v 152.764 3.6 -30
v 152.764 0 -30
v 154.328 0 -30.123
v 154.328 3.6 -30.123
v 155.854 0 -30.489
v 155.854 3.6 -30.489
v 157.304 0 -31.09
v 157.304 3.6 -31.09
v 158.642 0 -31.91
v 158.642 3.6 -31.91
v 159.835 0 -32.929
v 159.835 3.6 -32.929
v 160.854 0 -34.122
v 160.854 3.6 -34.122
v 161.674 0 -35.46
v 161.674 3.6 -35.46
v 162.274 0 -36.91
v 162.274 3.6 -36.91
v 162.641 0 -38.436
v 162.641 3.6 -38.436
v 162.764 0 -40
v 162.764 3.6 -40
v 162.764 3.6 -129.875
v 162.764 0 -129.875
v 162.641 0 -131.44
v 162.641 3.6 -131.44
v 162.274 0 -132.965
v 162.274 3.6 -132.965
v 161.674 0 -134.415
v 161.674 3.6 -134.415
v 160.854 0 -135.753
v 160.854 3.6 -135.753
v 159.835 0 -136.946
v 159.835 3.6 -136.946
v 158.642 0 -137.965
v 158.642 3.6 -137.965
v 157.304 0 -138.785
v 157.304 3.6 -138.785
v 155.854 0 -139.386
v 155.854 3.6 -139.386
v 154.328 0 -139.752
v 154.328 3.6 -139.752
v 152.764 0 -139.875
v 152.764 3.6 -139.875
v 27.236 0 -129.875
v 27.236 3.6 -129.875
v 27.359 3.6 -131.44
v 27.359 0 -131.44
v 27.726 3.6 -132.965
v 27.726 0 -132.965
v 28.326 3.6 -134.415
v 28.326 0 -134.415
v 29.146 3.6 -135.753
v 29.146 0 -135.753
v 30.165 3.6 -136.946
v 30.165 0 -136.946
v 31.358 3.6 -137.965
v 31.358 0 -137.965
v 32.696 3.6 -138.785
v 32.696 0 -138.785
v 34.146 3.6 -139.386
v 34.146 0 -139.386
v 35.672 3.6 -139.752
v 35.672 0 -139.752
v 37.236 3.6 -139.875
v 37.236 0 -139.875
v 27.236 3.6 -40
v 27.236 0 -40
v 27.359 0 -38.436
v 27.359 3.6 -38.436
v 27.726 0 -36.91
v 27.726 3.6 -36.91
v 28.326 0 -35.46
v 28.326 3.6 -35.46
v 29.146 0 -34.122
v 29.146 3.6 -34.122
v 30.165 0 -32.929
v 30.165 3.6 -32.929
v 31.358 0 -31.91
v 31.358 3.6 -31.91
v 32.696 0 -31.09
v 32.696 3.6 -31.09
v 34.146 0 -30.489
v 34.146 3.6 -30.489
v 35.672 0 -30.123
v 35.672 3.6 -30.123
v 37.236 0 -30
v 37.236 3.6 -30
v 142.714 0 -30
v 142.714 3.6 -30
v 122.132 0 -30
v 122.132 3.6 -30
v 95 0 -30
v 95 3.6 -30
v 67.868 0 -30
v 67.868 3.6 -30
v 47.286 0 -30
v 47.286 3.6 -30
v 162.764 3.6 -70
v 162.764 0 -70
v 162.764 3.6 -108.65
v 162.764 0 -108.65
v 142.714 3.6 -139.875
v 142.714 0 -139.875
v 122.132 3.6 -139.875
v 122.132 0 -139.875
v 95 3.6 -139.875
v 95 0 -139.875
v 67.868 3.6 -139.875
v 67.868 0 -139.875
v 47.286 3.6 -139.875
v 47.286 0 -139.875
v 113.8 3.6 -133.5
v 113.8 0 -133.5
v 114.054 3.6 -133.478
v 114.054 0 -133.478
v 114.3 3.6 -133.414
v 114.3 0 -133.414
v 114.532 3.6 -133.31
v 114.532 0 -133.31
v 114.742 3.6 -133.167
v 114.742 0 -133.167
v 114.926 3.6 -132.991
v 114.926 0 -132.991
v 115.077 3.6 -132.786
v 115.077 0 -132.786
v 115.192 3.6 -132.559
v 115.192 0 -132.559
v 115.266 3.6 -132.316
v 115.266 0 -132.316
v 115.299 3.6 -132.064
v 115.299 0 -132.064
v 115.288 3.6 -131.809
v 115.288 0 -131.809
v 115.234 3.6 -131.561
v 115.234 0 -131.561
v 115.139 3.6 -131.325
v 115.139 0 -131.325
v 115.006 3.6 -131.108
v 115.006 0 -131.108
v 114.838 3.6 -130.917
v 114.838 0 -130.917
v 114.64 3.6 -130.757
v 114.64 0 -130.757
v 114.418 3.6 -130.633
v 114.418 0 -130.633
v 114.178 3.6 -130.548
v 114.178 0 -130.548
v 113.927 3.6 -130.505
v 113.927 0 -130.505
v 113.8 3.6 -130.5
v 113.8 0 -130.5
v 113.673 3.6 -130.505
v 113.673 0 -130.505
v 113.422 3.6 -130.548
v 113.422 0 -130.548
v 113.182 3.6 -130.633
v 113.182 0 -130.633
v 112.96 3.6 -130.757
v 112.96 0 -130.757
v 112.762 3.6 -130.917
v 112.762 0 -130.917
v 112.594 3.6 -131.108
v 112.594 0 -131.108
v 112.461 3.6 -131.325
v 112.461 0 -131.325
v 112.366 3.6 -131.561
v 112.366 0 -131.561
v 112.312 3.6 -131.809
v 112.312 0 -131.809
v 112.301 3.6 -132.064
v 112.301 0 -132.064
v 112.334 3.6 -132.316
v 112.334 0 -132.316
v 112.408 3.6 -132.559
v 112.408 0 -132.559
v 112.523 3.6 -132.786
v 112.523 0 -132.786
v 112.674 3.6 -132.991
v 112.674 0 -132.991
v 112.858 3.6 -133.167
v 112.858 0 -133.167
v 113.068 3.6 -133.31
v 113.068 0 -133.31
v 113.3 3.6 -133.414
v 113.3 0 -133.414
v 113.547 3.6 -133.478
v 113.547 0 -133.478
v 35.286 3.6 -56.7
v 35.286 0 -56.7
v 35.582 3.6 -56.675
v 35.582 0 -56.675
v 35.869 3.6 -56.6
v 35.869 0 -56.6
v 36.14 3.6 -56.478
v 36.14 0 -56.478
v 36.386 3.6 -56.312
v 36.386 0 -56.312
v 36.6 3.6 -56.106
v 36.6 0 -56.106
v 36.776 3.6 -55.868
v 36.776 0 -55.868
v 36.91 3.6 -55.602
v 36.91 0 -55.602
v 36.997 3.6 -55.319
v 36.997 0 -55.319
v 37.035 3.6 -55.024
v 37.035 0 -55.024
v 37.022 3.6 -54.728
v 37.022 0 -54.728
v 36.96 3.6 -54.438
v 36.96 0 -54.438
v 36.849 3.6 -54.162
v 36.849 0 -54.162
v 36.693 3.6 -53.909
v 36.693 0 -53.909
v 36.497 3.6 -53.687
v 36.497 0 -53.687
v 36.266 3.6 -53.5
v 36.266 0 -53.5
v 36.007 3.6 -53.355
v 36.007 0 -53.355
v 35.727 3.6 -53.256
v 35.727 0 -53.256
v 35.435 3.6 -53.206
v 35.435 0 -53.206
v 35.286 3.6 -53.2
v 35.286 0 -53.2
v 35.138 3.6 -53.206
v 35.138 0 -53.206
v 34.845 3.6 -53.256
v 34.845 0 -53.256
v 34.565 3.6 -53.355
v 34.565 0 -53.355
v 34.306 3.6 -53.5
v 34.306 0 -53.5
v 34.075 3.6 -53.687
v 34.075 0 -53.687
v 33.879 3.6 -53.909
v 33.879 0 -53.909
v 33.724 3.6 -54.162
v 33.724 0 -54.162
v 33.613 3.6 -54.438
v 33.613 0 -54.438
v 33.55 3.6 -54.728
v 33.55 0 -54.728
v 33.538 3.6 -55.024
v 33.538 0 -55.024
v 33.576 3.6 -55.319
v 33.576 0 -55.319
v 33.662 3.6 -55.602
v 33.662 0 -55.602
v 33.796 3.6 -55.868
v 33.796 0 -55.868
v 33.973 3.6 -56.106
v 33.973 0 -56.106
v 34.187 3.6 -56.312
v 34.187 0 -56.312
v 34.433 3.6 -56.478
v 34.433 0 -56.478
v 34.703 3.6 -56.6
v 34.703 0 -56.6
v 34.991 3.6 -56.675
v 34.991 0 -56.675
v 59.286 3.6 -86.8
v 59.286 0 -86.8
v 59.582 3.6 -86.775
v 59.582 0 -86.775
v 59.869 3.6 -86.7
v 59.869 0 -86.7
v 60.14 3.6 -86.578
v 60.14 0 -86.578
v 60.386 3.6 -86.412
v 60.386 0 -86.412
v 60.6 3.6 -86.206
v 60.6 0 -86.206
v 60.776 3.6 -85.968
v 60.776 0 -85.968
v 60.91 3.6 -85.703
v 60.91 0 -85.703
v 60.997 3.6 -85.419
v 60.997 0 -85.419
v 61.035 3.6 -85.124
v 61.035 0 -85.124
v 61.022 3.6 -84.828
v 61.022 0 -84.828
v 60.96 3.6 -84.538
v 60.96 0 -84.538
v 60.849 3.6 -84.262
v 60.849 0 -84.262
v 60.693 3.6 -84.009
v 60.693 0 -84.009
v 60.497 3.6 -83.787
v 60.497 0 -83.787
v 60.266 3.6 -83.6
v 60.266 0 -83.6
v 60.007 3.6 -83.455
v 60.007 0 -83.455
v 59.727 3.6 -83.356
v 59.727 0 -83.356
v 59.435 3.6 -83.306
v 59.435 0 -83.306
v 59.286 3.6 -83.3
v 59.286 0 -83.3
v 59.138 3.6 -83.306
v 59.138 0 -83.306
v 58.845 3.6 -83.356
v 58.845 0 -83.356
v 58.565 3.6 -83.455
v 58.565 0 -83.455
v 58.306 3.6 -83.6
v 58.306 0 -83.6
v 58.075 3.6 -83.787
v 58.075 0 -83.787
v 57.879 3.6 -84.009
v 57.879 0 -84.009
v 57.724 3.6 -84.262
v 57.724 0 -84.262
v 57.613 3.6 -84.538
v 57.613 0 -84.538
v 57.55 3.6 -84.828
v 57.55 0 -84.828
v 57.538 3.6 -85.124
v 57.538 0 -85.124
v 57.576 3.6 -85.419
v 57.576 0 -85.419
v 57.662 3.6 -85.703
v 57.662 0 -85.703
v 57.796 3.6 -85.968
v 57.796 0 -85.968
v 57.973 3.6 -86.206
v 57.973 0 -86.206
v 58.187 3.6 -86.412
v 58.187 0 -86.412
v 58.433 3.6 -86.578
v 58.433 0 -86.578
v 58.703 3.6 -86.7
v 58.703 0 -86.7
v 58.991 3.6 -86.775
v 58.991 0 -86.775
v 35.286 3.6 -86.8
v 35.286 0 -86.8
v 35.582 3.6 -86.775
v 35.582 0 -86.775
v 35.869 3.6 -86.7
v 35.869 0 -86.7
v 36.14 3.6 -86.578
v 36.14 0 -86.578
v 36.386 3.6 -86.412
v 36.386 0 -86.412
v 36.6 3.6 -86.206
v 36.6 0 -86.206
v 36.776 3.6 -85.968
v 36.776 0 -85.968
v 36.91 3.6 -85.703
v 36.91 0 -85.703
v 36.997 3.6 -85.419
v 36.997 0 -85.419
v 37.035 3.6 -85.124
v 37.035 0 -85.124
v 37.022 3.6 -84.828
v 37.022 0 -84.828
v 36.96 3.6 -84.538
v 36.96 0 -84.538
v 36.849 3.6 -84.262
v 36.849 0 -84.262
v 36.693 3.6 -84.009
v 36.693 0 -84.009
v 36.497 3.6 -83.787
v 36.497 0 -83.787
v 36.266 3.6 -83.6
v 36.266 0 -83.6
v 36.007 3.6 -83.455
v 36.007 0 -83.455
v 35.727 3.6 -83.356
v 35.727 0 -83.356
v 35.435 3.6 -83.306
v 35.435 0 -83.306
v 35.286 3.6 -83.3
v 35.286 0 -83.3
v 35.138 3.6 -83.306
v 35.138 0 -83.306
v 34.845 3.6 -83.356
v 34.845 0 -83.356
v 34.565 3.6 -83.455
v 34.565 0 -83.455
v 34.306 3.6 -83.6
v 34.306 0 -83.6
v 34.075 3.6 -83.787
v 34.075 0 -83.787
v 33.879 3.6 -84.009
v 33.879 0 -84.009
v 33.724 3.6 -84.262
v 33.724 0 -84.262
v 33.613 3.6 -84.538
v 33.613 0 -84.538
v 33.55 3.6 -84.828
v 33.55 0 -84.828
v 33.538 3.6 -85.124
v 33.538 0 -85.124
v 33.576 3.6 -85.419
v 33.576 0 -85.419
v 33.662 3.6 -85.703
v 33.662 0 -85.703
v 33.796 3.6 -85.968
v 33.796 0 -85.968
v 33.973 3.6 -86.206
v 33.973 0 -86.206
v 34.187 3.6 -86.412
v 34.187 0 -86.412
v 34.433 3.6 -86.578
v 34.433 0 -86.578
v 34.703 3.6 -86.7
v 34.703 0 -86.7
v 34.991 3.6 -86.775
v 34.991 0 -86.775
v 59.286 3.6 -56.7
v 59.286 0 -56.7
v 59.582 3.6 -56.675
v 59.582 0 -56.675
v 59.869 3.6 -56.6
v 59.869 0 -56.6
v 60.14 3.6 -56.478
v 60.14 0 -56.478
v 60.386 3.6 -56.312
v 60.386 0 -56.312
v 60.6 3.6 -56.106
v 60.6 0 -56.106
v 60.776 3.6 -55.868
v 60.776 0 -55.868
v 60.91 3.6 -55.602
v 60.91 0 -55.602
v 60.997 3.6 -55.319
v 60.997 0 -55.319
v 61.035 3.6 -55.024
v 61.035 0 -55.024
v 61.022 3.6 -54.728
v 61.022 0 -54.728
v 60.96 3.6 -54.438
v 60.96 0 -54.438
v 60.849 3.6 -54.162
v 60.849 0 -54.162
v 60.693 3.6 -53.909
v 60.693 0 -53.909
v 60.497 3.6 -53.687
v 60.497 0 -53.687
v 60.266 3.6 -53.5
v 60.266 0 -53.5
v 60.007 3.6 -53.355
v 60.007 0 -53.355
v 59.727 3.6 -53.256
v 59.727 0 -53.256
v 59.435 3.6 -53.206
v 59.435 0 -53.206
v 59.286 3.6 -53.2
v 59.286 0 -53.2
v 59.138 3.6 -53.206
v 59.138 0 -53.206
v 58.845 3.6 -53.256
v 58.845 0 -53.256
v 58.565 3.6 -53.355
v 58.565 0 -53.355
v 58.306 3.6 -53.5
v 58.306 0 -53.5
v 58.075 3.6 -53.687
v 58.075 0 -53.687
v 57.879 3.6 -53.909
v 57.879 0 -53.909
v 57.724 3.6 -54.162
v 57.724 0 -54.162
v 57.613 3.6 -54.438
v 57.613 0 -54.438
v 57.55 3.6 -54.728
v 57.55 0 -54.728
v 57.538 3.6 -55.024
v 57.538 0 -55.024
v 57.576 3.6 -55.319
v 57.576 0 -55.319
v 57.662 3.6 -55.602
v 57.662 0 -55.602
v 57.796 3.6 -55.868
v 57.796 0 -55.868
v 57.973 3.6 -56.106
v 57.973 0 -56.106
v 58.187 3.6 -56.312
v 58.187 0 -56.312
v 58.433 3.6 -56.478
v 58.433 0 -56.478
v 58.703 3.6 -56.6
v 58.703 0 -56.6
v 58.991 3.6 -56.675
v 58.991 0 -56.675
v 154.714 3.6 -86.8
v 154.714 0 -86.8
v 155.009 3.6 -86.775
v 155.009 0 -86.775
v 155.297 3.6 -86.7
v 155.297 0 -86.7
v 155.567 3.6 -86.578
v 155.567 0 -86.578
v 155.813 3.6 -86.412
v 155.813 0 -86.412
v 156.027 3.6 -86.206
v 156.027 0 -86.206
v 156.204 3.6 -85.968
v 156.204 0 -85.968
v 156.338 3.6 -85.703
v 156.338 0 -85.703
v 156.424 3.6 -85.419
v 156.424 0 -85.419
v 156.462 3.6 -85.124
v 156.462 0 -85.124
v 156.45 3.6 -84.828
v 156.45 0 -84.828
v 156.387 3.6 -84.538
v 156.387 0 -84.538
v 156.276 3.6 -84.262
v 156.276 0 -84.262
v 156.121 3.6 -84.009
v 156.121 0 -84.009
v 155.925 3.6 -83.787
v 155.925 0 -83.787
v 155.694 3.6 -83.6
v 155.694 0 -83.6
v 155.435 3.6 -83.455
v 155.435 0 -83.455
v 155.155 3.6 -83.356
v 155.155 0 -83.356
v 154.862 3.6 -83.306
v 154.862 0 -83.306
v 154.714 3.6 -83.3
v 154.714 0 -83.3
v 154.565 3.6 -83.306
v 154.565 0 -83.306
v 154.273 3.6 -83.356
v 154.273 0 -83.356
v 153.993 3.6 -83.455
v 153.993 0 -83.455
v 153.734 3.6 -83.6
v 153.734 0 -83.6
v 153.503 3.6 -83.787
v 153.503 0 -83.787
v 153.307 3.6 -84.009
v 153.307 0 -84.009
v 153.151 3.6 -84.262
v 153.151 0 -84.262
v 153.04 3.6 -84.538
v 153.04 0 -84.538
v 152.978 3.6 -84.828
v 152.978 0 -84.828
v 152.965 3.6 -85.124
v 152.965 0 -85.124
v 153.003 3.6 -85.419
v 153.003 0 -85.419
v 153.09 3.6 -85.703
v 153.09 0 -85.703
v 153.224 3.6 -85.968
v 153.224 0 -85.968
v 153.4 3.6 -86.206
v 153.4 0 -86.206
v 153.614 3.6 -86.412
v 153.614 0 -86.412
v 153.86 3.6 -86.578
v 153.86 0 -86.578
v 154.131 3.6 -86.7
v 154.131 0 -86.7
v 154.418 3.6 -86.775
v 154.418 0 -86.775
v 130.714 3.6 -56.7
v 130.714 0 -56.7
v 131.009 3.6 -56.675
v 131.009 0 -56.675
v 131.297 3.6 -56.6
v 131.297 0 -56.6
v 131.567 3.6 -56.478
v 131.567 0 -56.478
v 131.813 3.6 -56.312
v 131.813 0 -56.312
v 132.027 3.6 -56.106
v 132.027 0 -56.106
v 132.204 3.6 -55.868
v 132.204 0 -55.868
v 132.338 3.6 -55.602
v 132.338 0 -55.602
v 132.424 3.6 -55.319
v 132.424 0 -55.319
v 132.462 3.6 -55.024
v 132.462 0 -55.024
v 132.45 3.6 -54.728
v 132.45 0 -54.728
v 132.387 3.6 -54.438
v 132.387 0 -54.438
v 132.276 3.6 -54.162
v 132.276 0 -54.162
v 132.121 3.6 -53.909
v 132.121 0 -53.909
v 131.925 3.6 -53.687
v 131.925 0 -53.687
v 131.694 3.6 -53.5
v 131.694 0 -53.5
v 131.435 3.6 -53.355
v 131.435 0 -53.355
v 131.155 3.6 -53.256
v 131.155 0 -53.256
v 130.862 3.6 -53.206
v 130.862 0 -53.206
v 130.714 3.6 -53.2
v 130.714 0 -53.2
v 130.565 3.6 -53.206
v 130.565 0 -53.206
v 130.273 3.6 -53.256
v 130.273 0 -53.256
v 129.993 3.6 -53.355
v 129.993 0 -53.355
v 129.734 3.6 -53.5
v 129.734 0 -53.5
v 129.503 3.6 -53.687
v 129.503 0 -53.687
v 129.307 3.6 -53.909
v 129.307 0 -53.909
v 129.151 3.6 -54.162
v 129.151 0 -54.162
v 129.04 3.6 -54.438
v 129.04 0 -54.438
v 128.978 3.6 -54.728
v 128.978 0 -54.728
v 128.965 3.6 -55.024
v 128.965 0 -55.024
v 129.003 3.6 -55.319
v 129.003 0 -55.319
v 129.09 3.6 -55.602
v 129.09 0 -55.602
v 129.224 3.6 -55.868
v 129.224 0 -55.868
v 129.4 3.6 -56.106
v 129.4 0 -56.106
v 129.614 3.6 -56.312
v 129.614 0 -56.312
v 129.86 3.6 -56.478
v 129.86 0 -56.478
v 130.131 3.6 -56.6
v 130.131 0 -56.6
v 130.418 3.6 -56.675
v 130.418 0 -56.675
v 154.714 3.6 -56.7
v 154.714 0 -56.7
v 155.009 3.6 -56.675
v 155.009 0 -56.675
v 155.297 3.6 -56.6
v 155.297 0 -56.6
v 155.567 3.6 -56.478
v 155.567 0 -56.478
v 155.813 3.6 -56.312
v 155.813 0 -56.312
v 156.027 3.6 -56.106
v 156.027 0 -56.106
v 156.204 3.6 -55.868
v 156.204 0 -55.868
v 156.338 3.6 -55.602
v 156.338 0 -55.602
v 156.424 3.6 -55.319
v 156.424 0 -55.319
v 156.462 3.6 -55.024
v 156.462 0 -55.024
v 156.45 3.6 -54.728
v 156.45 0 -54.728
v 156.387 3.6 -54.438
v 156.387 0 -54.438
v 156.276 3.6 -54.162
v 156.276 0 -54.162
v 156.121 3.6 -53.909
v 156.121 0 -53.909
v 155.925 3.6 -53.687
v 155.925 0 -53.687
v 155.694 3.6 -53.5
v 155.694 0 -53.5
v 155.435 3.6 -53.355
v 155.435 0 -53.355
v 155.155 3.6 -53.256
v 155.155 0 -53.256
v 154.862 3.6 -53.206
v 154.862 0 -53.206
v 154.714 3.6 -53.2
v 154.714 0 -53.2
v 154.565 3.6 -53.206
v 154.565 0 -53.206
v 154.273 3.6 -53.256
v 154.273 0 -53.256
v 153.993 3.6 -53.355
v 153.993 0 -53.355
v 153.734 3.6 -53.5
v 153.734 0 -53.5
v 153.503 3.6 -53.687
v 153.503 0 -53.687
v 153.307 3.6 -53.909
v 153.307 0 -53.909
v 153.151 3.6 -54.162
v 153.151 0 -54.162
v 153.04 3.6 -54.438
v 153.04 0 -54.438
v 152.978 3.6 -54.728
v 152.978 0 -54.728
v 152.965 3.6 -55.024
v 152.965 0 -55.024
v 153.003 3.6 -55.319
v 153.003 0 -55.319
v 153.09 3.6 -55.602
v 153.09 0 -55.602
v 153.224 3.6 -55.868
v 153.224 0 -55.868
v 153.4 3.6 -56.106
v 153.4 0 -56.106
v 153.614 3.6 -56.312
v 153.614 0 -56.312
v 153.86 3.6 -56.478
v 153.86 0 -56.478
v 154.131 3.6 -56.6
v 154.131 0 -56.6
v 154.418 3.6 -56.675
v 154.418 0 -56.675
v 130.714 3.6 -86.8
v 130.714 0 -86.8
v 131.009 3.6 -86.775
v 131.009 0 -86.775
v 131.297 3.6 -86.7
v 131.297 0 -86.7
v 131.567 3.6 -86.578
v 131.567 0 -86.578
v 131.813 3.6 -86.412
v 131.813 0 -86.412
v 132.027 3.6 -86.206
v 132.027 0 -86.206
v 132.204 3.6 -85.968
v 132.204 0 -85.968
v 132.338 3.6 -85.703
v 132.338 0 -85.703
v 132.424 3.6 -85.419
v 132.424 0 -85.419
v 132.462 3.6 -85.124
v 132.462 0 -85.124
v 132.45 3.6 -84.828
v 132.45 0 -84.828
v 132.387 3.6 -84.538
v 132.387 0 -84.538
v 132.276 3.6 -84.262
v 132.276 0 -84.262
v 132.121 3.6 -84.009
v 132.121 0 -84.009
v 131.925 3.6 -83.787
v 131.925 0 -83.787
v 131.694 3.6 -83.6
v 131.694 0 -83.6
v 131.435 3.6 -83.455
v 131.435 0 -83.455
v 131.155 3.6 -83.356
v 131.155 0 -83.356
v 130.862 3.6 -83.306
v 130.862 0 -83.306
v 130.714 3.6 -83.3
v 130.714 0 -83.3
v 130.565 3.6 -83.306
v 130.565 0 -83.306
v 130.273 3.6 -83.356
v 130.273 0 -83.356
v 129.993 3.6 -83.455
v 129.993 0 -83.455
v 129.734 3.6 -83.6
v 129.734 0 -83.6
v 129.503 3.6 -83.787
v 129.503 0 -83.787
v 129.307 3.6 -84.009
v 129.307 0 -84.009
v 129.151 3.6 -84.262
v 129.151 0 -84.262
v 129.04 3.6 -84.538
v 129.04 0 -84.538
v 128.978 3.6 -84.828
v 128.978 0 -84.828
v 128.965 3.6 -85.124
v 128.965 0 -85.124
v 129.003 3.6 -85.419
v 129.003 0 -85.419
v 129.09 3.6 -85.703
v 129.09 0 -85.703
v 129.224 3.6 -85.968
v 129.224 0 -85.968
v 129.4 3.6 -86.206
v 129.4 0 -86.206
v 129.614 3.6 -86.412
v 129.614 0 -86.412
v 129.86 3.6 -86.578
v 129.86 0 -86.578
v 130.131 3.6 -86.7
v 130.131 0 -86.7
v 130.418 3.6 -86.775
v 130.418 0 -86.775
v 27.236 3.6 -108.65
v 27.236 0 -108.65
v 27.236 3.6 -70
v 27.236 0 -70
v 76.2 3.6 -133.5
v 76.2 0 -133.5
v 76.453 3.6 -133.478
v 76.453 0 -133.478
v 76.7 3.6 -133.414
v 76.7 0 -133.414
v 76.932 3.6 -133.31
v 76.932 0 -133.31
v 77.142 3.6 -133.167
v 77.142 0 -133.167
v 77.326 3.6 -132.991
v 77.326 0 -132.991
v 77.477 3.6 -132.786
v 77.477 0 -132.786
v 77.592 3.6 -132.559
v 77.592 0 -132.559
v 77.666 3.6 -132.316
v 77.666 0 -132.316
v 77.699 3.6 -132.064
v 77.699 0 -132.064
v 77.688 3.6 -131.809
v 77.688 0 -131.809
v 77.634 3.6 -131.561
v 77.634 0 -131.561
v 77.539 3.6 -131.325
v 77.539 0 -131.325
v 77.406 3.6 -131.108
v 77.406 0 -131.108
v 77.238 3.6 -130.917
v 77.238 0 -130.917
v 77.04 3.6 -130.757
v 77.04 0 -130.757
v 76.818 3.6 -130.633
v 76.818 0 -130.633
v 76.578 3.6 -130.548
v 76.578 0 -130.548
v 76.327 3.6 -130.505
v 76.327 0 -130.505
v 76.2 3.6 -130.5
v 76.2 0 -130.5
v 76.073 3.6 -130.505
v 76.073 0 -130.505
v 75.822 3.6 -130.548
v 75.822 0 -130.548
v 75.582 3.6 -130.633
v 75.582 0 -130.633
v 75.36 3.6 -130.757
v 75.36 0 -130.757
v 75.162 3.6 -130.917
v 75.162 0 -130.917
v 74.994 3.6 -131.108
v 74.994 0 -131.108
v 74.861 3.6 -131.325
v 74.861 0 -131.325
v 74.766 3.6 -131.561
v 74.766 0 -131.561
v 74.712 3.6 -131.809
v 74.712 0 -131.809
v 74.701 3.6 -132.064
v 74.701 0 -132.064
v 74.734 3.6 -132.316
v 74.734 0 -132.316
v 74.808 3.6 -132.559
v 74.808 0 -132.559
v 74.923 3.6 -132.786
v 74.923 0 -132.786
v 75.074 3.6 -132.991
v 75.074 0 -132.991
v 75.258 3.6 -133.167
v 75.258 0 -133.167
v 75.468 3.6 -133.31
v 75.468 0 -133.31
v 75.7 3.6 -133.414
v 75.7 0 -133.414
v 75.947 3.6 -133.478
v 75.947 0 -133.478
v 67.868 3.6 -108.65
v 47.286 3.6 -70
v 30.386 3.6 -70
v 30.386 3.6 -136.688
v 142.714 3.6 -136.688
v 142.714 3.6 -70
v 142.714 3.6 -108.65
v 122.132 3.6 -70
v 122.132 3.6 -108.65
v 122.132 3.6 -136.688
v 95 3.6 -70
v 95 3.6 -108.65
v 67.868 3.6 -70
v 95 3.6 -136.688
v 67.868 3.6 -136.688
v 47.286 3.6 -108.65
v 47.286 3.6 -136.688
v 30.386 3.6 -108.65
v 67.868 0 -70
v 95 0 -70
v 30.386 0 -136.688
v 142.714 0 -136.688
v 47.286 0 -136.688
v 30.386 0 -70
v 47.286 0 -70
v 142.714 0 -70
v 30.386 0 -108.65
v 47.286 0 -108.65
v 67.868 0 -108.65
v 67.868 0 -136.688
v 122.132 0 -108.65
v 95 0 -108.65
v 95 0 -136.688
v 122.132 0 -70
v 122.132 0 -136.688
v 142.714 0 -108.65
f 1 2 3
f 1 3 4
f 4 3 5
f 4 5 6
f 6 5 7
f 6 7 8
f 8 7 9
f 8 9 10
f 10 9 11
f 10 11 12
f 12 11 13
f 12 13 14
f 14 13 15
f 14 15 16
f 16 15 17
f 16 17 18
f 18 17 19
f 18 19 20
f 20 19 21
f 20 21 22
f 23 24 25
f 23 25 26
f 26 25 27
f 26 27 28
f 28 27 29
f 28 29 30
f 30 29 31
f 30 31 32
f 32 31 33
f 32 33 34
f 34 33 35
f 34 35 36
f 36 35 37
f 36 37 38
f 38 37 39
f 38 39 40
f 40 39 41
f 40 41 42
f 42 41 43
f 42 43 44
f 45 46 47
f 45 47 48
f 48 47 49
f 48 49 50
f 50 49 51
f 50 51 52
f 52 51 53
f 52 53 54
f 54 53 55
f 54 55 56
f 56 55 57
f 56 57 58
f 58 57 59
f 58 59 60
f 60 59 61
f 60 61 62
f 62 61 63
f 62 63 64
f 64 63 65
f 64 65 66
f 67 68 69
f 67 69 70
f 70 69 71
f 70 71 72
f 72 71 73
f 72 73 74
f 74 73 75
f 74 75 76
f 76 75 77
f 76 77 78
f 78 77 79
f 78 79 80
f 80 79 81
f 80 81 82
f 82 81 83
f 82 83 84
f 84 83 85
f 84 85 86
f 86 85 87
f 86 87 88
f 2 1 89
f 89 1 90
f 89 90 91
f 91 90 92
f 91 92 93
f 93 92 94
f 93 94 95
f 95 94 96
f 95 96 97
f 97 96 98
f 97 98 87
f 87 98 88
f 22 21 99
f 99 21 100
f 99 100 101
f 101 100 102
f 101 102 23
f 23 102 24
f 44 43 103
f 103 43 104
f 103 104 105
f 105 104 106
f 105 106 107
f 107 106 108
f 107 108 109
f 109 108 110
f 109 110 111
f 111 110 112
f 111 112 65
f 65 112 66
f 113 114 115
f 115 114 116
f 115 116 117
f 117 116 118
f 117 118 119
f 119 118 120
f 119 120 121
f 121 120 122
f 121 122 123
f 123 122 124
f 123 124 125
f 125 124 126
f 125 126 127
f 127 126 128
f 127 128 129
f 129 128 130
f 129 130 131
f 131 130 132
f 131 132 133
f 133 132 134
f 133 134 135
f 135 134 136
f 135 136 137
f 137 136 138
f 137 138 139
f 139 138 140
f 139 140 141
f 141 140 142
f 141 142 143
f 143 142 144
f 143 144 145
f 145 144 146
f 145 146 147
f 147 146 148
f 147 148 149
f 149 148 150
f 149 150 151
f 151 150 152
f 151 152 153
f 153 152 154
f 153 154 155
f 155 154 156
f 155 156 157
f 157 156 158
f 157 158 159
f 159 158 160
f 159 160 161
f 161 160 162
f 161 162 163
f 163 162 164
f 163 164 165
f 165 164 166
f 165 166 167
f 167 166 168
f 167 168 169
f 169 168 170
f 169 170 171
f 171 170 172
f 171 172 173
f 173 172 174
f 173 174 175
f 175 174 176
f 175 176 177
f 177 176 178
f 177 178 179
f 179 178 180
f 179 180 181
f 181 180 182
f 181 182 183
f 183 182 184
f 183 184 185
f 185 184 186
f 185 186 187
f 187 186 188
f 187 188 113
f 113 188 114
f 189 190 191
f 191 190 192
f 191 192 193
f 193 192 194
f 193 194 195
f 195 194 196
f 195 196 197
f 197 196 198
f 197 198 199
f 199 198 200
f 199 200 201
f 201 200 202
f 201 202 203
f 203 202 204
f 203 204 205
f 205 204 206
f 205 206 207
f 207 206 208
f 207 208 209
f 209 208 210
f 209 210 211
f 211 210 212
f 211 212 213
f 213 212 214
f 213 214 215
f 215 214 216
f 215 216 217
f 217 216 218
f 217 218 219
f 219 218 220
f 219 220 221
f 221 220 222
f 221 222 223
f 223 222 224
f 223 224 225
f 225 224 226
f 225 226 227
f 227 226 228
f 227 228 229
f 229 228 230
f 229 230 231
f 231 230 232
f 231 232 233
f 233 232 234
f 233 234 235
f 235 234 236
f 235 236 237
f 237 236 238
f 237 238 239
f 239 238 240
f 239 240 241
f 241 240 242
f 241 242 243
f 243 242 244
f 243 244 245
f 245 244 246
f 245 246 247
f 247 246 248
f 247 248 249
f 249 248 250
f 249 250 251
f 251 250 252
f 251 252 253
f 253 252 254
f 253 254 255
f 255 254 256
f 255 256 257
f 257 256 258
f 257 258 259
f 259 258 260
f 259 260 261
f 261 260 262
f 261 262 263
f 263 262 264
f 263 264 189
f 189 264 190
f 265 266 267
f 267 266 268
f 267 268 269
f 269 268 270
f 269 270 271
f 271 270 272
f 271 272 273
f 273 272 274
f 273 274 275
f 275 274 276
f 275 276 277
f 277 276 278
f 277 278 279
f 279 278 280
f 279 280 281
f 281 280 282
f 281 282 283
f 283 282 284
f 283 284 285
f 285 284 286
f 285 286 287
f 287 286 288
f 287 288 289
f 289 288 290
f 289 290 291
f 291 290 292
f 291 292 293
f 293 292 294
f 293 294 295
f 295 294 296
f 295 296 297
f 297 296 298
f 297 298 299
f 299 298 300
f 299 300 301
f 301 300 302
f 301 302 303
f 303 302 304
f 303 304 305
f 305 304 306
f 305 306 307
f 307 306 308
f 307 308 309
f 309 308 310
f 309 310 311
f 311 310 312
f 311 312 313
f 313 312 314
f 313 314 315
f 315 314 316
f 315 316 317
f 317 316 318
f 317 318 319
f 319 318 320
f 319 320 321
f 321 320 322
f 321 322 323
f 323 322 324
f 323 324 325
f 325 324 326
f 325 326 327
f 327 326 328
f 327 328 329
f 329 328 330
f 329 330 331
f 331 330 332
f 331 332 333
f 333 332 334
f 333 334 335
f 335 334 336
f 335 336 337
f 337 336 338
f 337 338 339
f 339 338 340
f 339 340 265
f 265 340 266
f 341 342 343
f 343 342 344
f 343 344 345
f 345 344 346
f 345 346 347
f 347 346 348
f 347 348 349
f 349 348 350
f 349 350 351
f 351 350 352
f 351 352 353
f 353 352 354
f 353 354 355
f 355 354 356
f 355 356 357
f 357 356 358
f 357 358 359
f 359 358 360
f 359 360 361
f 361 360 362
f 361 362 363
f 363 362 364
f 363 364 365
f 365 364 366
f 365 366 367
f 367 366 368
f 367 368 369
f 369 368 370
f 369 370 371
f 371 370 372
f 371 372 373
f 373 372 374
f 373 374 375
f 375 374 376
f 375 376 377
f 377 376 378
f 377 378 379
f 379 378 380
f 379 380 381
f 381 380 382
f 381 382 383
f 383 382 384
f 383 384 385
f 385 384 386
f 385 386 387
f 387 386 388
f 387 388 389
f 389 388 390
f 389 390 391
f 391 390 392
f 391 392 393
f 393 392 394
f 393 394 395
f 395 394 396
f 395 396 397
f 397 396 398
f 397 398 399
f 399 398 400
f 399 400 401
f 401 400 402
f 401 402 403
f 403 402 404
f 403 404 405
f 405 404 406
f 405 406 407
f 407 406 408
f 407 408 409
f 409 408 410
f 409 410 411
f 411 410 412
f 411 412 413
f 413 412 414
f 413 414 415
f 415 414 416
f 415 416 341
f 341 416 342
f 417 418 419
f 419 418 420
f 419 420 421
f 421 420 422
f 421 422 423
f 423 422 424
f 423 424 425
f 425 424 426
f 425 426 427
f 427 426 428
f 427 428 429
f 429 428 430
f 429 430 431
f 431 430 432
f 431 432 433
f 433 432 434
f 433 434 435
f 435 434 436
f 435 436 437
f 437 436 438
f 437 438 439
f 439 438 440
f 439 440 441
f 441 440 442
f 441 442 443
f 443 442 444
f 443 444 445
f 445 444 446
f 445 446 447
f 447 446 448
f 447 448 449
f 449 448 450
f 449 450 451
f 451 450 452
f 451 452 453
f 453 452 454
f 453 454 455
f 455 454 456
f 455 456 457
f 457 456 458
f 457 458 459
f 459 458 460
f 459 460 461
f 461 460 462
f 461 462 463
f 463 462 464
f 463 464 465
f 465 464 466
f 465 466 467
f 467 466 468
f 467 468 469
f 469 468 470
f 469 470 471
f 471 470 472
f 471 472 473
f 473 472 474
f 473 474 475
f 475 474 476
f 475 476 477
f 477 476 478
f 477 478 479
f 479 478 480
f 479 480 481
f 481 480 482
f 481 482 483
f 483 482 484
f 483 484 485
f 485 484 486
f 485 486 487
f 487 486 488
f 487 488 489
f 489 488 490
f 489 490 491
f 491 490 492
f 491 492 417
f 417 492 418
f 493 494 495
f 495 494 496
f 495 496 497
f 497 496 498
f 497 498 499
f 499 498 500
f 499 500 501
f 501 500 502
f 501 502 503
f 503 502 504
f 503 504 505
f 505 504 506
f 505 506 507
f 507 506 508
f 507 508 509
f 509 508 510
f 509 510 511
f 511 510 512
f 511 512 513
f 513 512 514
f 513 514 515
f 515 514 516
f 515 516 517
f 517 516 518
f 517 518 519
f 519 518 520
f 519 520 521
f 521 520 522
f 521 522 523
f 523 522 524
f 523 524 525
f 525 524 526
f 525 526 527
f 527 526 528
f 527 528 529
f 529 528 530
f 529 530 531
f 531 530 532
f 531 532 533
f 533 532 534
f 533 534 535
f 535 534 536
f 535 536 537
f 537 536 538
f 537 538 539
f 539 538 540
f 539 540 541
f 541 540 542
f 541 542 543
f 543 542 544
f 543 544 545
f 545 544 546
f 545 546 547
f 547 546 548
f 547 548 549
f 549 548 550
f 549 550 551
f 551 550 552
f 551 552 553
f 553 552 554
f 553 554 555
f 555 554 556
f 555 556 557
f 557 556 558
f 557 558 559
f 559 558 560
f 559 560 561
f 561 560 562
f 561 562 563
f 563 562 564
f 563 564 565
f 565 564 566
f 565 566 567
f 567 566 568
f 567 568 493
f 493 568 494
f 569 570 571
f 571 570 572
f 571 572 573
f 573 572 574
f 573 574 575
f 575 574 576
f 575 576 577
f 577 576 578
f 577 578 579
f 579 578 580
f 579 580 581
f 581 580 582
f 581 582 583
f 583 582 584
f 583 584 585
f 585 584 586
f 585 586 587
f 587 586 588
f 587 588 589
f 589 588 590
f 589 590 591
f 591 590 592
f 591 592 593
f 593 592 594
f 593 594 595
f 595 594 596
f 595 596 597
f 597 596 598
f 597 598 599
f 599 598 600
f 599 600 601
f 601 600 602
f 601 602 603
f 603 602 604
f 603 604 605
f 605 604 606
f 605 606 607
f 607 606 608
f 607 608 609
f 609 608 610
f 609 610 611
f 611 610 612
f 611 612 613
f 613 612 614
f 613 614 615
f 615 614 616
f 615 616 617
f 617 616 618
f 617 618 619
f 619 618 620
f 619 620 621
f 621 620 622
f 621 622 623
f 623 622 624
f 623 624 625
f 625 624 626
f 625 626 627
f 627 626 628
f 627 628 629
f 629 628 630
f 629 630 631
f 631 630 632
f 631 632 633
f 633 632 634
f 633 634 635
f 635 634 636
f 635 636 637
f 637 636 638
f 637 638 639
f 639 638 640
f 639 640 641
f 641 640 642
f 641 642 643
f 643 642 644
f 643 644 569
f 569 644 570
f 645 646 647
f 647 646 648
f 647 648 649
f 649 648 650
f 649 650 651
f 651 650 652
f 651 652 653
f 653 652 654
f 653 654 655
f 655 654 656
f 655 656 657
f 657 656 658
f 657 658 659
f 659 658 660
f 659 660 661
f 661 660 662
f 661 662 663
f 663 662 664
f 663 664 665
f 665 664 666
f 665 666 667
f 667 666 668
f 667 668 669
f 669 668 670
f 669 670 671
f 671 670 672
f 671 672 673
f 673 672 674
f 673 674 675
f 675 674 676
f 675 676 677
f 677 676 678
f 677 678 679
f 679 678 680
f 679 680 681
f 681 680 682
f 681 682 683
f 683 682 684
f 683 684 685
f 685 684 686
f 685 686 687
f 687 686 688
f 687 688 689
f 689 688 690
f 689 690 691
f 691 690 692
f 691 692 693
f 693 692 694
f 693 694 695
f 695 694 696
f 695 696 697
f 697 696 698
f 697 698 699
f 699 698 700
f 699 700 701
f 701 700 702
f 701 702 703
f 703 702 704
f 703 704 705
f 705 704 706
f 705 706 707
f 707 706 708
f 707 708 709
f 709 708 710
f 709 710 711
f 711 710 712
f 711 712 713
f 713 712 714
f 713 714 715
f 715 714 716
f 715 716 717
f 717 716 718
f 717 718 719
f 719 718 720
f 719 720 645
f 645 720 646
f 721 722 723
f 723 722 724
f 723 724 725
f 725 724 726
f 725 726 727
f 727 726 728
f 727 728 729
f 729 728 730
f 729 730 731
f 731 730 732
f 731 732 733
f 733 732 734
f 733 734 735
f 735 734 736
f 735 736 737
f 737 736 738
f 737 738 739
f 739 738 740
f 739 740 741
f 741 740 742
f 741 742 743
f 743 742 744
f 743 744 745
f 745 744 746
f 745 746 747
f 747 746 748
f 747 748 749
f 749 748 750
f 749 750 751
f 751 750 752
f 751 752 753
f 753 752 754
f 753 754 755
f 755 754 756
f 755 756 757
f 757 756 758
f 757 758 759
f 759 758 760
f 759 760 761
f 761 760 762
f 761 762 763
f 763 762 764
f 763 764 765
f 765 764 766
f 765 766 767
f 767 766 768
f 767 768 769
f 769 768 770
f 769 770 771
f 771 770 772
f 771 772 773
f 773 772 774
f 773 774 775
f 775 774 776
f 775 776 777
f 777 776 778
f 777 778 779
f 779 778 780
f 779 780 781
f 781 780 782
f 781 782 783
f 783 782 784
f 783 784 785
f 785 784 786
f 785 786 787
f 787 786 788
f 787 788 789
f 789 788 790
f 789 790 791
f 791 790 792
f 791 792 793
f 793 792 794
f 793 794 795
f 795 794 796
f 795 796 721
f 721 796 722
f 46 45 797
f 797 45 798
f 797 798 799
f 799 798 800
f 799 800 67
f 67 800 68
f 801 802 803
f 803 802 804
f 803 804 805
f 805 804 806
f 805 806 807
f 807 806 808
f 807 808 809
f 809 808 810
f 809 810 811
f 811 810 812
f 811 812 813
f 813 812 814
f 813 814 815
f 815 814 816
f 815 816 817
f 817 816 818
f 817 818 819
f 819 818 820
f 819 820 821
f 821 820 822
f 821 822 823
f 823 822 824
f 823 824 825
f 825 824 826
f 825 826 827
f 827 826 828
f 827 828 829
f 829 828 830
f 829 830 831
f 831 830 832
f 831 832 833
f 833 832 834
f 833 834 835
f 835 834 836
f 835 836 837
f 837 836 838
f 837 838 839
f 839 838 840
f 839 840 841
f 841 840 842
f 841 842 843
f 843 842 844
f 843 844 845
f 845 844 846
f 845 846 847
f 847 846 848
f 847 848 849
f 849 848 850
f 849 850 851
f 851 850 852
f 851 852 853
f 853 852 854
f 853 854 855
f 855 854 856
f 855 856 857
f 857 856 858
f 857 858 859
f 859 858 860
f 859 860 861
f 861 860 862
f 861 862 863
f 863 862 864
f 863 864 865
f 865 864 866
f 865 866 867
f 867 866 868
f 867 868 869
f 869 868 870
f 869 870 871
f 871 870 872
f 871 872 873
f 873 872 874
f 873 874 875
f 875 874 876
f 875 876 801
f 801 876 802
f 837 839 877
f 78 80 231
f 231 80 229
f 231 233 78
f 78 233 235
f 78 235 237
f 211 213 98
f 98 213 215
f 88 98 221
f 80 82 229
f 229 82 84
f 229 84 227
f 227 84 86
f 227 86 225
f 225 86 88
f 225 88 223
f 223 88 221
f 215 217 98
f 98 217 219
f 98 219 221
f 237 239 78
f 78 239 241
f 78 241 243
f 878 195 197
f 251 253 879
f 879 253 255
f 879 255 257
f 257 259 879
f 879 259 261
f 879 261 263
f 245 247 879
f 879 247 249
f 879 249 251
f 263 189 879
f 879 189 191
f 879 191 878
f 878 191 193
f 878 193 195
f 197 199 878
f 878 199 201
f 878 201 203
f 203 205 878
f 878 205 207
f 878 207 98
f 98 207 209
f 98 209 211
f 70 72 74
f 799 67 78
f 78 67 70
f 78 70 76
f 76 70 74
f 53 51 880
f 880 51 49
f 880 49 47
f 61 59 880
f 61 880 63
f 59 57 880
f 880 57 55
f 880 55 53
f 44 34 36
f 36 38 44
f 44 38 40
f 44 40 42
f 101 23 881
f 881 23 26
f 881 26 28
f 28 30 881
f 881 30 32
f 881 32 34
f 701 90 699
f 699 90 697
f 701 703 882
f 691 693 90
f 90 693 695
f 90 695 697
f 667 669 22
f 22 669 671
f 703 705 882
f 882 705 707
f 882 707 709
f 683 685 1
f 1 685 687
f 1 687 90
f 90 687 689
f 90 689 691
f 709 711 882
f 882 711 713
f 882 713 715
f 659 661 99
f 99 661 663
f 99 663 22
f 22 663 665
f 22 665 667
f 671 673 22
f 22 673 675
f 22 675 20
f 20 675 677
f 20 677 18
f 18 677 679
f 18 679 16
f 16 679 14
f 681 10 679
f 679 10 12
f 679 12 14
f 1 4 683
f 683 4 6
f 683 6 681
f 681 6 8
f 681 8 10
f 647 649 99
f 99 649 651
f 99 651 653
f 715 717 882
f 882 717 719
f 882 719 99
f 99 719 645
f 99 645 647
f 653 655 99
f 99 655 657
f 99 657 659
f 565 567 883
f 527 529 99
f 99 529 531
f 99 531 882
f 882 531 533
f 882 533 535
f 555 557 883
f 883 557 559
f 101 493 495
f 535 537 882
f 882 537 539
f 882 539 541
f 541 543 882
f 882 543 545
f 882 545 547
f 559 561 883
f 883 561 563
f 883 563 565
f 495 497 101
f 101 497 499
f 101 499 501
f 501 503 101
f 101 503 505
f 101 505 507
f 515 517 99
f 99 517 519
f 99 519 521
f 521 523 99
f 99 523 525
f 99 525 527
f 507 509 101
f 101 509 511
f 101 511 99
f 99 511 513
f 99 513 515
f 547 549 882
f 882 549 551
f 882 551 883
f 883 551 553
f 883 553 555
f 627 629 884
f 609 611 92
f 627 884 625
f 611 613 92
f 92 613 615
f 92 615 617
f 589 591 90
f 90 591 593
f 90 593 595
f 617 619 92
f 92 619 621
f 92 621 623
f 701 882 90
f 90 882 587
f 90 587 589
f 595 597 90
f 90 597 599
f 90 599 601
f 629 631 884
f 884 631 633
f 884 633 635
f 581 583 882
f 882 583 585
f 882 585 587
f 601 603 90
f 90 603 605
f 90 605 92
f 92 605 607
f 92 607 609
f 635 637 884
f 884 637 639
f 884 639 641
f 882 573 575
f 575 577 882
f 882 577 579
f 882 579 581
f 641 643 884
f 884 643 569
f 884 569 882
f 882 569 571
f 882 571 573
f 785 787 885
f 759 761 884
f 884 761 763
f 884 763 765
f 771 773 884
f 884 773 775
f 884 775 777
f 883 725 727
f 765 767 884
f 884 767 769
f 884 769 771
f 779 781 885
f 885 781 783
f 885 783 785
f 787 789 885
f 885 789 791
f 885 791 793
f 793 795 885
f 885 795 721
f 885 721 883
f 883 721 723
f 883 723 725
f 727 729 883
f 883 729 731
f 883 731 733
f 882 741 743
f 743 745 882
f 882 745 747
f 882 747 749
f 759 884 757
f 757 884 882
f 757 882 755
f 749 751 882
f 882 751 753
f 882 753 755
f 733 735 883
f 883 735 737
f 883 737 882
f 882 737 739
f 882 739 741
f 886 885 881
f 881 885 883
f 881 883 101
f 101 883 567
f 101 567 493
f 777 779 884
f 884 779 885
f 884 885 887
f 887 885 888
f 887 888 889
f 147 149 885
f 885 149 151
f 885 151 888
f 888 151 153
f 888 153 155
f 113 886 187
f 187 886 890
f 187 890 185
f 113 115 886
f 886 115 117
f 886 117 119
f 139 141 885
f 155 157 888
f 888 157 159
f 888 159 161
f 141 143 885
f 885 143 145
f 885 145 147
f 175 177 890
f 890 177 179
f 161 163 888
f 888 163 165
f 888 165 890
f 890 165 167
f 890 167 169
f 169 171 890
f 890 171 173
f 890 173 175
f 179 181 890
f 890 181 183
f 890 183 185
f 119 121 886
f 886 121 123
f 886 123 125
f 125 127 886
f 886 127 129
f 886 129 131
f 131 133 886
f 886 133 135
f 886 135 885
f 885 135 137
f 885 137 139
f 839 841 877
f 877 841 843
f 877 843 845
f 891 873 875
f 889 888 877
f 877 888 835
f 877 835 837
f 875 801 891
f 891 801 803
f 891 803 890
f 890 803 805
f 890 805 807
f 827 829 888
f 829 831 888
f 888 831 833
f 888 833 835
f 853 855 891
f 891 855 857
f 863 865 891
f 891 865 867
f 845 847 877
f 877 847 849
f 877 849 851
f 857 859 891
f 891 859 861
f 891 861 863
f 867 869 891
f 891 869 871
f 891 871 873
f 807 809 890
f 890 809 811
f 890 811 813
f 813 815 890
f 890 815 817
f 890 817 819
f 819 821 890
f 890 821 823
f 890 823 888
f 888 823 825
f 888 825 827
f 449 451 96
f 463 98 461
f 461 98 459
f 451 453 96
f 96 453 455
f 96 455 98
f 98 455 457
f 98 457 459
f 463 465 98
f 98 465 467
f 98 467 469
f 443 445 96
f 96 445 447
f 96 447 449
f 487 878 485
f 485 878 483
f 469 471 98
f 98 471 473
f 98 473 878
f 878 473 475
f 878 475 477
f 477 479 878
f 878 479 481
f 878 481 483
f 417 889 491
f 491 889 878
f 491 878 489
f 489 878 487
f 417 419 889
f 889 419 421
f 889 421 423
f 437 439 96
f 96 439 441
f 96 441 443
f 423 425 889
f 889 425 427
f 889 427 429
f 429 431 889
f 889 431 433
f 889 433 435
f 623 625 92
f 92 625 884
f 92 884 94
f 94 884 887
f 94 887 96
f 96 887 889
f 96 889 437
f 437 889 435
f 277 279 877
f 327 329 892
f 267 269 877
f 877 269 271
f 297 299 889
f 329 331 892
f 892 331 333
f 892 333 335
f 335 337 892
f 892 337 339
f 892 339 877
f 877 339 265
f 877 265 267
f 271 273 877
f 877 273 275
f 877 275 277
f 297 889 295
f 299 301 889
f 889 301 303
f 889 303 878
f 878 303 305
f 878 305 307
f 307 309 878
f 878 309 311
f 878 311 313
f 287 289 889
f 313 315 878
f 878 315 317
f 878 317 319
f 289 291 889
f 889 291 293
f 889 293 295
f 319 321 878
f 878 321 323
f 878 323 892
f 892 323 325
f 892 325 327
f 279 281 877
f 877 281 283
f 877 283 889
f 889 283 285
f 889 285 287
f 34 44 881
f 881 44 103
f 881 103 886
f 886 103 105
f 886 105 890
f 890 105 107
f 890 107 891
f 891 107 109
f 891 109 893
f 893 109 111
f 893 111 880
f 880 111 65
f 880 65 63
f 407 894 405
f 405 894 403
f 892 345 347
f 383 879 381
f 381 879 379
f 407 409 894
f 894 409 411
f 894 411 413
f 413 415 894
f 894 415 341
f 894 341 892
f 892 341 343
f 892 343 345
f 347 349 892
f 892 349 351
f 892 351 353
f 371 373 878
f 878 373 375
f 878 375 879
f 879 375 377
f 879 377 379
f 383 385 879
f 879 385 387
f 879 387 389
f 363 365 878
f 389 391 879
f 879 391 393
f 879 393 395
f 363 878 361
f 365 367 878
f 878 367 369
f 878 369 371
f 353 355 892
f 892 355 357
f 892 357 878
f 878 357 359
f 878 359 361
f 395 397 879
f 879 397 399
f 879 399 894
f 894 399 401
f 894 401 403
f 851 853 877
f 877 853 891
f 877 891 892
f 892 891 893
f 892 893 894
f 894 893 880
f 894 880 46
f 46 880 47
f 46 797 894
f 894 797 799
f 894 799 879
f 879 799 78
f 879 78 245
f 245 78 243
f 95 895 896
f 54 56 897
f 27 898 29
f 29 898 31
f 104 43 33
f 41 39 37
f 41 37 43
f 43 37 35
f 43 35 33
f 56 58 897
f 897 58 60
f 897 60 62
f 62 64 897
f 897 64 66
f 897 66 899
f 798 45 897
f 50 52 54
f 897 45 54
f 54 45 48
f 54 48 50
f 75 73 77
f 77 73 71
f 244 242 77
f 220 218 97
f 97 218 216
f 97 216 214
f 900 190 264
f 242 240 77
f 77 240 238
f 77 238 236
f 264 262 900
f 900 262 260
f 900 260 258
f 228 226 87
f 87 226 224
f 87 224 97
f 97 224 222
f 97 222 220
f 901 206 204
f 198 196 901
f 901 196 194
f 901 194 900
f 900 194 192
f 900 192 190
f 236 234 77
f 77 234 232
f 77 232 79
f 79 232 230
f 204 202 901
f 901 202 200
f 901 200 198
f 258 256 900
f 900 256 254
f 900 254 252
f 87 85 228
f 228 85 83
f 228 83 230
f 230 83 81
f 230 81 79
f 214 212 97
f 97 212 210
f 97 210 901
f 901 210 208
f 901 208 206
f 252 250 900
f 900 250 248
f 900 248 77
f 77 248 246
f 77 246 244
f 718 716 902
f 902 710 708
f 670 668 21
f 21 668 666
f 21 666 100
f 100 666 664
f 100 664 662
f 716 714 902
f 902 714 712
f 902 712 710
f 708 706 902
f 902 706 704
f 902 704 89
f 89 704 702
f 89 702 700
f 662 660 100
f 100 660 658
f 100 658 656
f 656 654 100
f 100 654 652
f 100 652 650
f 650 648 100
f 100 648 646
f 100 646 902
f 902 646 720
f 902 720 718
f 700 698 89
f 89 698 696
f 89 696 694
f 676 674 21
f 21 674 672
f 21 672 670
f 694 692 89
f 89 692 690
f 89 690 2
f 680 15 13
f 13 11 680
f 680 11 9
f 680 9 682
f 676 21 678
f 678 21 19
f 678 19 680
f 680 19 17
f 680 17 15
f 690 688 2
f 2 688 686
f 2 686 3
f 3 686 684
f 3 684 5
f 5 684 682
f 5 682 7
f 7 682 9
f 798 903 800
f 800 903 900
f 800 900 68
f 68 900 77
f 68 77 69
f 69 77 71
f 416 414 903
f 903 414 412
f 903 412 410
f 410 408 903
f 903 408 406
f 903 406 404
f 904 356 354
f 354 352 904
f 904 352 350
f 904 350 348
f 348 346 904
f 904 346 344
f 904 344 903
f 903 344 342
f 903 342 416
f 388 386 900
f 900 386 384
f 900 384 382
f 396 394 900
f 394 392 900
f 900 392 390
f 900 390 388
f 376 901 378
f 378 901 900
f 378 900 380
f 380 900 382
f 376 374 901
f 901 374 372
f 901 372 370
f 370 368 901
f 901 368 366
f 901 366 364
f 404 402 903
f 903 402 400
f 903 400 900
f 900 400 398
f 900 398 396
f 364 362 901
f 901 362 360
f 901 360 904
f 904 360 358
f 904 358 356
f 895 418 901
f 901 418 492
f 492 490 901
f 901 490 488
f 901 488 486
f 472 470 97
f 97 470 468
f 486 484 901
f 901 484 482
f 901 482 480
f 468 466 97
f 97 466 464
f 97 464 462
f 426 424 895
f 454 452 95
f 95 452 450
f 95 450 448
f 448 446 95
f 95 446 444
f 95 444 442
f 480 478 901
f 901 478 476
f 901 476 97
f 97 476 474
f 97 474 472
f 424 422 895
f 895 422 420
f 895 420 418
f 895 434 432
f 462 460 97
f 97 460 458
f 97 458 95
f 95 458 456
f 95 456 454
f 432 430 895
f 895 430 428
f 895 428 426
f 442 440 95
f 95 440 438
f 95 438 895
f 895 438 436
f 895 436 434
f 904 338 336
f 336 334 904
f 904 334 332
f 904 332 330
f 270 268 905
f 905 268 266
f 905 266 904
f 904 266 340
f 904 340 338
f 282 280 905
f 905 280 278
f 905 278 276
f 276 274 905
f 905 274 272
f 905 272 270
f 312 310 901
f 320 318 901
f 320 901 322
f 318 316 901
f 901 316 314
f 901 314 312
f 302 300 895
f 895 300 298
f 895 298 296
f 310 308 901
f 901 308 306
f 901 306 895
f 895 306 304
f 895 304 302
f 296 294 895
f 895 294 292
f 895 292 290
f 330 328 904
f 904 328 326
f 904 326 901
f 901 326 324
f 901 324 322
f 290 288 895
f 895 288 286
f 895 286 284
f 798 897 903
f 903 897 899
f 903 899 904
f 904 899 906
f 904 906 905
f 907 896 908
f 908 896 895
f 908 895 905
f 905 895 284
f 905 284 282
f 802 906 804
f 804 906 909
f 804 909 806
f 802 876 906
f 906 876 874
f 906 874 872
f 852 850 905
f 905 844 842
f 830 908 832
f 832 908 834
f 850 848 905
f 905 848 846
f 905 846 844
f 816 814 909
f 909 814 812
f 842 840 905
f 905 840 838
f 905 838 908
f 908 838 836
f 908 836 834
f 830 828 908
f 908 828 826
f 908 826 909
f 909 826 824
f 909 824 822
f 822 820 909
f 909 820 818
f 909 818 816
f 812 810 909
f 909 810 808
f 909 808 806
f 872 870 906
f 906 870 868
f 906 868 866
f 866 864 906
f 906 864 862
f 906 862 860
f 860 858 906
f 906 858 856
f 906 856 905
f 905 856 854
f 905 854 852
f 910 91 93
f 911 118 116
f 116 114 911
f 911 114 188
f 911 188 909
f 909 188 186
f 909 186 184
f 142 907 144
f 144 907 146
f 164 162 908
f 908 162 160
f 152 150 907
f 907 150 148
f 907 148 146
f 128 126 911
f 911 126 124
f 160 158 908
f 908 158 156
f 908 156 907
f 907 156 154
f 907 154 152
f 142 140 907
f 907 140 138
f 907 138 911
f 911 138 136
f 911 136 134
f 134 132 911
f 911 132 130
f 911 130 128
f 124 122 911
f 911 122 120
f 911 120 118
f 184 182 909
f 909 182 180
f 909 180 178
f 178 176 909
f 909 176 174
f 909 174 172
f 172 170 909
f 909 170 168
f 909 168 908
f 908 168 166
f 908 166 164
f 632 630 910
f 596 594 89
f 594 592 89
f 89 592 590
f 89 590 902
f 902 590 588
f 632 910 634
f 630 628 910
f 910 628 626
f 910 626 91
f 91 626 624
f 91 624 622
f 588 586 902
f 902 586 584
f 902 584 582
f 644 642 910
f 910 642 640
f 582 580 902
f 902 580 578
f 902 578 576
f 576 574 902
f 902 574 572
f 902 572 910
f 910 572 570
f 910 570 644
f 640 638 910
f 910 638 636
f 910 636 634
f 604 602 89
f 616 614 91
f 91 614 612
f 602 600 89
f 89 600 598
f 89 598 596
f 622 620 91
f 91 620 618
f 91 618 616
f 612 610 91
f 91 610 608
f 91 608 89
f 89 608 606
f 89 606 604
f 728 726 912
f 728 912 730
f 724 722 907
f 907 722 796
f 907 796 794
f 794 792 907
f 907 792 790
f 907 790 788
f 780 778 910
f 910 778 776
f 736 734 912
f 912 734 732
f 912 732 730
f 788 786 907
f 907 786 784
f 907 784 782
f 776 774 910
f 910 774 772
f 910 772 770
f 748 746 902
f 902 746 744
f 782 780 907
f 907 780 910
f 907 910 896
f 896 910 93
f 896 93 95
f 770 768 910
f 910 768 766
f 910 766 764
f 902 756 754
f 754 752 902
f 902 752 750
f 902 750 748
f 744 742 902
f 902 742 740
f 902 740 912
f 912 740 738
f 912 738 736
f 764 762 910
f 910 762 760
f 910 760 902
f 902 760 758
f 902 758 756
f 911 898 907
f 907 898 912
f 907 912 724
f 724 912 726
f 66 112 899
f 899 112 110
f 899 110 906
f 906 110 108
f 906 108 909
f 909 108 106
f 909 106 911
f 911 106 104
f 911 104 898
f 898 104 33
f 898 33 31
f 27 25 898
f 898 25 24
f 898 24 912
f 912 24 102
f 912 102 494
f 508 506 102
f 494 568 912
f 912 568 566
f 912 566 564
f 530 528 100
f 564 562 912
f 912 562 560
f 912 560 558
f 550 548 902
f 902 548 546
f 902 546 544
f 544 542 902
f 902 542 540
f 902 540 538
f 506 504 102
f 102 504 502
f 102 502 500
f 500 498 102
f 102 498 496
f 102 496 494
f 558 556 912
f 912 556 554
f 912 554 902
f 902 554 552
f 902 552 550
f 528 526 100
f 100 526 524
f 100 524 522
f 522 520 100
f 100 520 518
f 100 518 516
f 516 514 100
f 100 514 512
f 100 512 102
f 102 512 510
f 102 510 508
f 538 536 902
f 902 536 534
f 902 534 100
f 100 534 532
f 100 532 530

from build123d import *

# Parameters (mm, degrees)
SKETCH_6_W      = 135.527465206
SKETCH_6_H      = 109.875291841
SKETCH_6_R      = 1.75
SKETCH_6_R_2    = 1.5
EXTRUDE_2_DEPTH = 3.6
FILLET_1_R      = 10
FILLET_2_R      = 10
FILLET_3_R      = 10
FILLET_4_R      = 10


with BuildPart() as part:
    # 草图6 → 凸台-拉伸2 (new body)
    with BuildSketch(Plane(origin=(0, 0, 0), x_dir=(1, 0, 0), z_dir=(0, 1, 0))):
        with Locations((95, 84.937645921)):
            Rectangle(SKETCH_6_W, SKETCH_6_H)
        with Locations((35.286267397, 54.95)):
            Circle(SKETCH_6_R, mode=Mode.SUBTRACT)
        with Locations((59.286267397, 54.95)):
            Circle(SKETCH_6_R, mode=Mode.SUBTRACT)
        with Locations((35.286267397, 85.05)):
            Circle(SKETCH_6_R, mode=Mode.SUBTRACT)
        with Locations((59.286267397, 85.05)):
            Circle(SKETCH_6_R, mode=Mode.SUBTRACT)
        with Locations((76.2, 132)):
            Circle(SKETCH_6_R_2, mode=Mode.SUBTRACT)
        with Locations((113.8, 132)):
            Circle(SKETCH_6_R_2, mode=Mode.SUBTRACT)
        with Locations((130.713732603, 85.05)):
            Circle(SKETCH_6_R, mode=Mode.SUBTRACT)
        with Locations((154.713732603, 54.95)):
            Circle(SKETCH_6_R, mode=Mode.SUBTRACT)
        with Locations((154.713732603, 85.05)):
            Circle(SKETCH_6_R, mode=Mode.SUBTRACT)
        with Locations((130.713732603, 54.95)):
            Circle(SKETCH_6_R, mode=Mode.SUBTRACT)
    extrude(amount=EXTRUDE_2_DEPTH)

    # 圆角1
    fillet_1_edges = [part.edges().sort_by_distance(p)[0] for p in [
        (27.236267397, 1.8, -30),
    ]]
    fillet(fillet_1_edges, radius=FILLET_1_R)

    # 圆角2
    fillet_2_edges = [part.edges().sort_by_distance(p)[0] for p in [
        (27.236267397, 1.8, -139.875291841),
    ]]
    fillet(fillet_2_edges, radius=FILLET_2_R)

    # 圆角3
    fillet_3_edges = [part.edges().sort_by_distance(p)[0] for p in [
        (162.763732603, 1.8, -139.875291841),
    ]]
    fillet(fillet_3_edges, radius=FILLET_3_R)

    # 圆角4
    fillet_4_edges = [part.edges().sort_by_distance(p)[0] for p in [
        (162.763732603, 1.8, -30),
    ]]
    fillet(fillet_4_edges, radius=FILLET_4_R)


solid = part.part
